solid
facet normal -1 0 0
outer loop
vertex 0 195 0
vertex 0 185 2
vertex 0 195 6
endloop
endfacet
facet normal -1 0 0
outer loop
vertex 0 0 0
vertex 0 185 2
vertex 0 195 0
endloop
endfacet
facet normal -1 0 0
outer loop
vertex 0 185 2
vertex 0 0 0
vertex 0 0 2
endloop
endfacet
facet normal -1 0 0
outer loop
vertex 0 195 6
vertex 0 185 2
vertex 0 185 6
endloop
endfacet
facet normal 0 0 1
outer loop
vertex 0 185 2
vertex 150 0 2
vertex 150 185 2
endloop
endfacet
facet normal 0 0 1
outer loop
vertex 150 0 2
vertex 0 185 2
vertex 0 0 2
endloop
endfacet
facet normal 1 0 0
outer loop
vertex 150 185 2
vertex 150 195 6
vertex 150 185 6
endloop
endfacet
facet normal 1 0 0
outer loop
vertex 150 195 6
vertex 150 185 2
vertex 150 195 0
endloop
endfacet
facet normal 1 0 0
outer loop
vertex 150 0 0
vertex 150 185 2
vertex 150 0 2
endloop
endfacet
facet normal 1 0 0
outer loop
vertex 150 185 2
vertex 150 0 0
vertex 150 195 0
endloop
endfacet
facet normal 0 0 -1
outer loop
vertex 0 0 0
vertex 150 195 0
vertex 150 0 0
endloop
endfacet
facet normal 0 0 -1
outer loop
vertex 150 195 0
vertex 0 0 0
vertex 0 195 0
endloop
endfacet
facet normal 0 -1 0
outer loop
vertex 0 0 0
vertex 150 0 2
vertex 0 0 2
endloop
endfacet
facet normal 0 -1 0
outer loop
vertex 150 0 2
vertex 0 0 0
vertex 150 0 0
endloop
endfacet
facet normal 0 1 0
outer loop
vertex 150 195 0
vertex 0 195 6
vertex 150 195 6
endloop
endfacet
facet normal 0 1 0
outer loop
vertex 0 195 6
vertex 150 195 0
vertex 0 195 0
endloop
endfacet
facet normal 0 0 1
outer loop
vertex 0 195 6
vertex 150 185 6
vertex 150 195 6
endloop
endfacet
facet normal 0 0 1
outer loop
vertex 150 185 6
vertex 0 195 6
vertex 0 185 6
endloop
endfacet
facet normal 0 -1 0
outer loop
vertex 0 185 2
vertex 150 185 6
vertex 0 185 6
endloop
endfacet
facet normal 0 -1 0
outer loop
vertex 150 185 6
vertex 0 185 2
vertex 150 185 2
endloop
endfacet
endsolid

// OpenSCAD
/* This piece was designed by Shawn French (McMaster University, Ontario, Canada)
It is part of the SCIFIcube (SCIentific Fluorescence Imaging cube), a small and portable 3D-printed
fluorescence imager for bacteria, yeast, or any colony-forming organism.  It works well with solid
agar medium, and can image high density samples rapidly over time.  

Details can be found at https://www.github.com/sfrench007/scificube

Copyright 2017 McMaster University

Redistribution and use in source and binary forms, with or without modification, are permitted provided that the following conditions are met:

1. Redistributions of source code must retain the above copyright notice, this list of conditions and the following disclaimer.

2. Redistributions in binary form must reproduce the above copyright notice, this list of conditions and the following disclaimer in the documentation and/or other materials provided with the distribution.

3. Neither the name of the copyright holder nor the names of its contributors may be used to endorse or promote products derived from this software without specific prior written permission.

THIS SOFTWARE IS PROVIDED BY THE COPYRIGHT HOLDERS AND CONTRIBUTORS "AS IS" AND ANY EXPRESS OR IMPLIED WARRANTIES, INCLUDING, BUT NOT LIMITED TO, THE IMPLIED WARRANTIES OF MERCHANTABILITY AND FITNESS FOR A PARTICULAR PURPOSE ARE DISCLAIMED. IN NO EVENT SHALL THE COPYRIGHT HOLDER OR CONTRIBUTORS BE LIABLE FOR ANY DIRECT, INDIRECT, INCIDENTAL, SPECIAL, EXEMPLARY, OR CONSEQUENTIAL DAMAGES (INCLUDING, BUT NOT LIMITED TO, PROCUREMENT OF SUBSTITUTE GOODS OR SERVICES; LOSS OF USE, DATA, OR PROFITS; OR BUSINESS INTERRUPTION) HOWEVER CAUSED AND ON ANY THEORY OF LIABILITY, WHETHER IN CONTRACT, STRICT LIABILITY, OR TORT (INCLUDING NEGLIGENCE OR OTHERWISE) ARISING IN ANY WAY OUT OF THE USE OF THIS SOFTWARE, EVEN IF ADVISED OF THE POSSIBILITY OF SUCH DAMAGE.

*/

// Height 175 mm (camera to base)
// Width 157 mm
// Depth 134 mm
// 135 mm camera to top of transilluminator
// 40 mm transilluminator height (base height)

boardWidth = 147;
boardDepth = 115;
boardHeight = 2;
acWidth = 11.5;
acHeight = 9;
acOffset = 5;
acRad = (acHeight/2)+1;
switchWidth = 11;
switchHeight = 7;
switchOffset = 3.5;

transDepth = 126.5;
transWidth = 157.5;
transHeight = 40;
transWallWidth = (transWidth-boardWidth)/2;

rigWallWidth = 3;
rigHeight = 175;
rigWidth = transWidth + (rigWallWidth * 2);
rigDepth = transDepth + (rigWallWidth * 2);
echo(rigWidth);
echo(rigDepth);
riserHeight = 4.8;
riserWidth = 10;

railWidth = 20;
sideWallWidth = 2;
allowance = 1;
slitDepth = 10;

extensionHeight = 20;

union(){
    cube(size=[150,rigHeight,sideWallWidth],center=false);
    translate([0,rigHeight,0]) cube(size=[150,extensionHeight,sideWallWidth],center=false);
    translate([0,rigHeight+(extensionHeight/2),0]) cube(size=[150,(extensionHeight/2),sideWallWidth*3],center=false);
}
